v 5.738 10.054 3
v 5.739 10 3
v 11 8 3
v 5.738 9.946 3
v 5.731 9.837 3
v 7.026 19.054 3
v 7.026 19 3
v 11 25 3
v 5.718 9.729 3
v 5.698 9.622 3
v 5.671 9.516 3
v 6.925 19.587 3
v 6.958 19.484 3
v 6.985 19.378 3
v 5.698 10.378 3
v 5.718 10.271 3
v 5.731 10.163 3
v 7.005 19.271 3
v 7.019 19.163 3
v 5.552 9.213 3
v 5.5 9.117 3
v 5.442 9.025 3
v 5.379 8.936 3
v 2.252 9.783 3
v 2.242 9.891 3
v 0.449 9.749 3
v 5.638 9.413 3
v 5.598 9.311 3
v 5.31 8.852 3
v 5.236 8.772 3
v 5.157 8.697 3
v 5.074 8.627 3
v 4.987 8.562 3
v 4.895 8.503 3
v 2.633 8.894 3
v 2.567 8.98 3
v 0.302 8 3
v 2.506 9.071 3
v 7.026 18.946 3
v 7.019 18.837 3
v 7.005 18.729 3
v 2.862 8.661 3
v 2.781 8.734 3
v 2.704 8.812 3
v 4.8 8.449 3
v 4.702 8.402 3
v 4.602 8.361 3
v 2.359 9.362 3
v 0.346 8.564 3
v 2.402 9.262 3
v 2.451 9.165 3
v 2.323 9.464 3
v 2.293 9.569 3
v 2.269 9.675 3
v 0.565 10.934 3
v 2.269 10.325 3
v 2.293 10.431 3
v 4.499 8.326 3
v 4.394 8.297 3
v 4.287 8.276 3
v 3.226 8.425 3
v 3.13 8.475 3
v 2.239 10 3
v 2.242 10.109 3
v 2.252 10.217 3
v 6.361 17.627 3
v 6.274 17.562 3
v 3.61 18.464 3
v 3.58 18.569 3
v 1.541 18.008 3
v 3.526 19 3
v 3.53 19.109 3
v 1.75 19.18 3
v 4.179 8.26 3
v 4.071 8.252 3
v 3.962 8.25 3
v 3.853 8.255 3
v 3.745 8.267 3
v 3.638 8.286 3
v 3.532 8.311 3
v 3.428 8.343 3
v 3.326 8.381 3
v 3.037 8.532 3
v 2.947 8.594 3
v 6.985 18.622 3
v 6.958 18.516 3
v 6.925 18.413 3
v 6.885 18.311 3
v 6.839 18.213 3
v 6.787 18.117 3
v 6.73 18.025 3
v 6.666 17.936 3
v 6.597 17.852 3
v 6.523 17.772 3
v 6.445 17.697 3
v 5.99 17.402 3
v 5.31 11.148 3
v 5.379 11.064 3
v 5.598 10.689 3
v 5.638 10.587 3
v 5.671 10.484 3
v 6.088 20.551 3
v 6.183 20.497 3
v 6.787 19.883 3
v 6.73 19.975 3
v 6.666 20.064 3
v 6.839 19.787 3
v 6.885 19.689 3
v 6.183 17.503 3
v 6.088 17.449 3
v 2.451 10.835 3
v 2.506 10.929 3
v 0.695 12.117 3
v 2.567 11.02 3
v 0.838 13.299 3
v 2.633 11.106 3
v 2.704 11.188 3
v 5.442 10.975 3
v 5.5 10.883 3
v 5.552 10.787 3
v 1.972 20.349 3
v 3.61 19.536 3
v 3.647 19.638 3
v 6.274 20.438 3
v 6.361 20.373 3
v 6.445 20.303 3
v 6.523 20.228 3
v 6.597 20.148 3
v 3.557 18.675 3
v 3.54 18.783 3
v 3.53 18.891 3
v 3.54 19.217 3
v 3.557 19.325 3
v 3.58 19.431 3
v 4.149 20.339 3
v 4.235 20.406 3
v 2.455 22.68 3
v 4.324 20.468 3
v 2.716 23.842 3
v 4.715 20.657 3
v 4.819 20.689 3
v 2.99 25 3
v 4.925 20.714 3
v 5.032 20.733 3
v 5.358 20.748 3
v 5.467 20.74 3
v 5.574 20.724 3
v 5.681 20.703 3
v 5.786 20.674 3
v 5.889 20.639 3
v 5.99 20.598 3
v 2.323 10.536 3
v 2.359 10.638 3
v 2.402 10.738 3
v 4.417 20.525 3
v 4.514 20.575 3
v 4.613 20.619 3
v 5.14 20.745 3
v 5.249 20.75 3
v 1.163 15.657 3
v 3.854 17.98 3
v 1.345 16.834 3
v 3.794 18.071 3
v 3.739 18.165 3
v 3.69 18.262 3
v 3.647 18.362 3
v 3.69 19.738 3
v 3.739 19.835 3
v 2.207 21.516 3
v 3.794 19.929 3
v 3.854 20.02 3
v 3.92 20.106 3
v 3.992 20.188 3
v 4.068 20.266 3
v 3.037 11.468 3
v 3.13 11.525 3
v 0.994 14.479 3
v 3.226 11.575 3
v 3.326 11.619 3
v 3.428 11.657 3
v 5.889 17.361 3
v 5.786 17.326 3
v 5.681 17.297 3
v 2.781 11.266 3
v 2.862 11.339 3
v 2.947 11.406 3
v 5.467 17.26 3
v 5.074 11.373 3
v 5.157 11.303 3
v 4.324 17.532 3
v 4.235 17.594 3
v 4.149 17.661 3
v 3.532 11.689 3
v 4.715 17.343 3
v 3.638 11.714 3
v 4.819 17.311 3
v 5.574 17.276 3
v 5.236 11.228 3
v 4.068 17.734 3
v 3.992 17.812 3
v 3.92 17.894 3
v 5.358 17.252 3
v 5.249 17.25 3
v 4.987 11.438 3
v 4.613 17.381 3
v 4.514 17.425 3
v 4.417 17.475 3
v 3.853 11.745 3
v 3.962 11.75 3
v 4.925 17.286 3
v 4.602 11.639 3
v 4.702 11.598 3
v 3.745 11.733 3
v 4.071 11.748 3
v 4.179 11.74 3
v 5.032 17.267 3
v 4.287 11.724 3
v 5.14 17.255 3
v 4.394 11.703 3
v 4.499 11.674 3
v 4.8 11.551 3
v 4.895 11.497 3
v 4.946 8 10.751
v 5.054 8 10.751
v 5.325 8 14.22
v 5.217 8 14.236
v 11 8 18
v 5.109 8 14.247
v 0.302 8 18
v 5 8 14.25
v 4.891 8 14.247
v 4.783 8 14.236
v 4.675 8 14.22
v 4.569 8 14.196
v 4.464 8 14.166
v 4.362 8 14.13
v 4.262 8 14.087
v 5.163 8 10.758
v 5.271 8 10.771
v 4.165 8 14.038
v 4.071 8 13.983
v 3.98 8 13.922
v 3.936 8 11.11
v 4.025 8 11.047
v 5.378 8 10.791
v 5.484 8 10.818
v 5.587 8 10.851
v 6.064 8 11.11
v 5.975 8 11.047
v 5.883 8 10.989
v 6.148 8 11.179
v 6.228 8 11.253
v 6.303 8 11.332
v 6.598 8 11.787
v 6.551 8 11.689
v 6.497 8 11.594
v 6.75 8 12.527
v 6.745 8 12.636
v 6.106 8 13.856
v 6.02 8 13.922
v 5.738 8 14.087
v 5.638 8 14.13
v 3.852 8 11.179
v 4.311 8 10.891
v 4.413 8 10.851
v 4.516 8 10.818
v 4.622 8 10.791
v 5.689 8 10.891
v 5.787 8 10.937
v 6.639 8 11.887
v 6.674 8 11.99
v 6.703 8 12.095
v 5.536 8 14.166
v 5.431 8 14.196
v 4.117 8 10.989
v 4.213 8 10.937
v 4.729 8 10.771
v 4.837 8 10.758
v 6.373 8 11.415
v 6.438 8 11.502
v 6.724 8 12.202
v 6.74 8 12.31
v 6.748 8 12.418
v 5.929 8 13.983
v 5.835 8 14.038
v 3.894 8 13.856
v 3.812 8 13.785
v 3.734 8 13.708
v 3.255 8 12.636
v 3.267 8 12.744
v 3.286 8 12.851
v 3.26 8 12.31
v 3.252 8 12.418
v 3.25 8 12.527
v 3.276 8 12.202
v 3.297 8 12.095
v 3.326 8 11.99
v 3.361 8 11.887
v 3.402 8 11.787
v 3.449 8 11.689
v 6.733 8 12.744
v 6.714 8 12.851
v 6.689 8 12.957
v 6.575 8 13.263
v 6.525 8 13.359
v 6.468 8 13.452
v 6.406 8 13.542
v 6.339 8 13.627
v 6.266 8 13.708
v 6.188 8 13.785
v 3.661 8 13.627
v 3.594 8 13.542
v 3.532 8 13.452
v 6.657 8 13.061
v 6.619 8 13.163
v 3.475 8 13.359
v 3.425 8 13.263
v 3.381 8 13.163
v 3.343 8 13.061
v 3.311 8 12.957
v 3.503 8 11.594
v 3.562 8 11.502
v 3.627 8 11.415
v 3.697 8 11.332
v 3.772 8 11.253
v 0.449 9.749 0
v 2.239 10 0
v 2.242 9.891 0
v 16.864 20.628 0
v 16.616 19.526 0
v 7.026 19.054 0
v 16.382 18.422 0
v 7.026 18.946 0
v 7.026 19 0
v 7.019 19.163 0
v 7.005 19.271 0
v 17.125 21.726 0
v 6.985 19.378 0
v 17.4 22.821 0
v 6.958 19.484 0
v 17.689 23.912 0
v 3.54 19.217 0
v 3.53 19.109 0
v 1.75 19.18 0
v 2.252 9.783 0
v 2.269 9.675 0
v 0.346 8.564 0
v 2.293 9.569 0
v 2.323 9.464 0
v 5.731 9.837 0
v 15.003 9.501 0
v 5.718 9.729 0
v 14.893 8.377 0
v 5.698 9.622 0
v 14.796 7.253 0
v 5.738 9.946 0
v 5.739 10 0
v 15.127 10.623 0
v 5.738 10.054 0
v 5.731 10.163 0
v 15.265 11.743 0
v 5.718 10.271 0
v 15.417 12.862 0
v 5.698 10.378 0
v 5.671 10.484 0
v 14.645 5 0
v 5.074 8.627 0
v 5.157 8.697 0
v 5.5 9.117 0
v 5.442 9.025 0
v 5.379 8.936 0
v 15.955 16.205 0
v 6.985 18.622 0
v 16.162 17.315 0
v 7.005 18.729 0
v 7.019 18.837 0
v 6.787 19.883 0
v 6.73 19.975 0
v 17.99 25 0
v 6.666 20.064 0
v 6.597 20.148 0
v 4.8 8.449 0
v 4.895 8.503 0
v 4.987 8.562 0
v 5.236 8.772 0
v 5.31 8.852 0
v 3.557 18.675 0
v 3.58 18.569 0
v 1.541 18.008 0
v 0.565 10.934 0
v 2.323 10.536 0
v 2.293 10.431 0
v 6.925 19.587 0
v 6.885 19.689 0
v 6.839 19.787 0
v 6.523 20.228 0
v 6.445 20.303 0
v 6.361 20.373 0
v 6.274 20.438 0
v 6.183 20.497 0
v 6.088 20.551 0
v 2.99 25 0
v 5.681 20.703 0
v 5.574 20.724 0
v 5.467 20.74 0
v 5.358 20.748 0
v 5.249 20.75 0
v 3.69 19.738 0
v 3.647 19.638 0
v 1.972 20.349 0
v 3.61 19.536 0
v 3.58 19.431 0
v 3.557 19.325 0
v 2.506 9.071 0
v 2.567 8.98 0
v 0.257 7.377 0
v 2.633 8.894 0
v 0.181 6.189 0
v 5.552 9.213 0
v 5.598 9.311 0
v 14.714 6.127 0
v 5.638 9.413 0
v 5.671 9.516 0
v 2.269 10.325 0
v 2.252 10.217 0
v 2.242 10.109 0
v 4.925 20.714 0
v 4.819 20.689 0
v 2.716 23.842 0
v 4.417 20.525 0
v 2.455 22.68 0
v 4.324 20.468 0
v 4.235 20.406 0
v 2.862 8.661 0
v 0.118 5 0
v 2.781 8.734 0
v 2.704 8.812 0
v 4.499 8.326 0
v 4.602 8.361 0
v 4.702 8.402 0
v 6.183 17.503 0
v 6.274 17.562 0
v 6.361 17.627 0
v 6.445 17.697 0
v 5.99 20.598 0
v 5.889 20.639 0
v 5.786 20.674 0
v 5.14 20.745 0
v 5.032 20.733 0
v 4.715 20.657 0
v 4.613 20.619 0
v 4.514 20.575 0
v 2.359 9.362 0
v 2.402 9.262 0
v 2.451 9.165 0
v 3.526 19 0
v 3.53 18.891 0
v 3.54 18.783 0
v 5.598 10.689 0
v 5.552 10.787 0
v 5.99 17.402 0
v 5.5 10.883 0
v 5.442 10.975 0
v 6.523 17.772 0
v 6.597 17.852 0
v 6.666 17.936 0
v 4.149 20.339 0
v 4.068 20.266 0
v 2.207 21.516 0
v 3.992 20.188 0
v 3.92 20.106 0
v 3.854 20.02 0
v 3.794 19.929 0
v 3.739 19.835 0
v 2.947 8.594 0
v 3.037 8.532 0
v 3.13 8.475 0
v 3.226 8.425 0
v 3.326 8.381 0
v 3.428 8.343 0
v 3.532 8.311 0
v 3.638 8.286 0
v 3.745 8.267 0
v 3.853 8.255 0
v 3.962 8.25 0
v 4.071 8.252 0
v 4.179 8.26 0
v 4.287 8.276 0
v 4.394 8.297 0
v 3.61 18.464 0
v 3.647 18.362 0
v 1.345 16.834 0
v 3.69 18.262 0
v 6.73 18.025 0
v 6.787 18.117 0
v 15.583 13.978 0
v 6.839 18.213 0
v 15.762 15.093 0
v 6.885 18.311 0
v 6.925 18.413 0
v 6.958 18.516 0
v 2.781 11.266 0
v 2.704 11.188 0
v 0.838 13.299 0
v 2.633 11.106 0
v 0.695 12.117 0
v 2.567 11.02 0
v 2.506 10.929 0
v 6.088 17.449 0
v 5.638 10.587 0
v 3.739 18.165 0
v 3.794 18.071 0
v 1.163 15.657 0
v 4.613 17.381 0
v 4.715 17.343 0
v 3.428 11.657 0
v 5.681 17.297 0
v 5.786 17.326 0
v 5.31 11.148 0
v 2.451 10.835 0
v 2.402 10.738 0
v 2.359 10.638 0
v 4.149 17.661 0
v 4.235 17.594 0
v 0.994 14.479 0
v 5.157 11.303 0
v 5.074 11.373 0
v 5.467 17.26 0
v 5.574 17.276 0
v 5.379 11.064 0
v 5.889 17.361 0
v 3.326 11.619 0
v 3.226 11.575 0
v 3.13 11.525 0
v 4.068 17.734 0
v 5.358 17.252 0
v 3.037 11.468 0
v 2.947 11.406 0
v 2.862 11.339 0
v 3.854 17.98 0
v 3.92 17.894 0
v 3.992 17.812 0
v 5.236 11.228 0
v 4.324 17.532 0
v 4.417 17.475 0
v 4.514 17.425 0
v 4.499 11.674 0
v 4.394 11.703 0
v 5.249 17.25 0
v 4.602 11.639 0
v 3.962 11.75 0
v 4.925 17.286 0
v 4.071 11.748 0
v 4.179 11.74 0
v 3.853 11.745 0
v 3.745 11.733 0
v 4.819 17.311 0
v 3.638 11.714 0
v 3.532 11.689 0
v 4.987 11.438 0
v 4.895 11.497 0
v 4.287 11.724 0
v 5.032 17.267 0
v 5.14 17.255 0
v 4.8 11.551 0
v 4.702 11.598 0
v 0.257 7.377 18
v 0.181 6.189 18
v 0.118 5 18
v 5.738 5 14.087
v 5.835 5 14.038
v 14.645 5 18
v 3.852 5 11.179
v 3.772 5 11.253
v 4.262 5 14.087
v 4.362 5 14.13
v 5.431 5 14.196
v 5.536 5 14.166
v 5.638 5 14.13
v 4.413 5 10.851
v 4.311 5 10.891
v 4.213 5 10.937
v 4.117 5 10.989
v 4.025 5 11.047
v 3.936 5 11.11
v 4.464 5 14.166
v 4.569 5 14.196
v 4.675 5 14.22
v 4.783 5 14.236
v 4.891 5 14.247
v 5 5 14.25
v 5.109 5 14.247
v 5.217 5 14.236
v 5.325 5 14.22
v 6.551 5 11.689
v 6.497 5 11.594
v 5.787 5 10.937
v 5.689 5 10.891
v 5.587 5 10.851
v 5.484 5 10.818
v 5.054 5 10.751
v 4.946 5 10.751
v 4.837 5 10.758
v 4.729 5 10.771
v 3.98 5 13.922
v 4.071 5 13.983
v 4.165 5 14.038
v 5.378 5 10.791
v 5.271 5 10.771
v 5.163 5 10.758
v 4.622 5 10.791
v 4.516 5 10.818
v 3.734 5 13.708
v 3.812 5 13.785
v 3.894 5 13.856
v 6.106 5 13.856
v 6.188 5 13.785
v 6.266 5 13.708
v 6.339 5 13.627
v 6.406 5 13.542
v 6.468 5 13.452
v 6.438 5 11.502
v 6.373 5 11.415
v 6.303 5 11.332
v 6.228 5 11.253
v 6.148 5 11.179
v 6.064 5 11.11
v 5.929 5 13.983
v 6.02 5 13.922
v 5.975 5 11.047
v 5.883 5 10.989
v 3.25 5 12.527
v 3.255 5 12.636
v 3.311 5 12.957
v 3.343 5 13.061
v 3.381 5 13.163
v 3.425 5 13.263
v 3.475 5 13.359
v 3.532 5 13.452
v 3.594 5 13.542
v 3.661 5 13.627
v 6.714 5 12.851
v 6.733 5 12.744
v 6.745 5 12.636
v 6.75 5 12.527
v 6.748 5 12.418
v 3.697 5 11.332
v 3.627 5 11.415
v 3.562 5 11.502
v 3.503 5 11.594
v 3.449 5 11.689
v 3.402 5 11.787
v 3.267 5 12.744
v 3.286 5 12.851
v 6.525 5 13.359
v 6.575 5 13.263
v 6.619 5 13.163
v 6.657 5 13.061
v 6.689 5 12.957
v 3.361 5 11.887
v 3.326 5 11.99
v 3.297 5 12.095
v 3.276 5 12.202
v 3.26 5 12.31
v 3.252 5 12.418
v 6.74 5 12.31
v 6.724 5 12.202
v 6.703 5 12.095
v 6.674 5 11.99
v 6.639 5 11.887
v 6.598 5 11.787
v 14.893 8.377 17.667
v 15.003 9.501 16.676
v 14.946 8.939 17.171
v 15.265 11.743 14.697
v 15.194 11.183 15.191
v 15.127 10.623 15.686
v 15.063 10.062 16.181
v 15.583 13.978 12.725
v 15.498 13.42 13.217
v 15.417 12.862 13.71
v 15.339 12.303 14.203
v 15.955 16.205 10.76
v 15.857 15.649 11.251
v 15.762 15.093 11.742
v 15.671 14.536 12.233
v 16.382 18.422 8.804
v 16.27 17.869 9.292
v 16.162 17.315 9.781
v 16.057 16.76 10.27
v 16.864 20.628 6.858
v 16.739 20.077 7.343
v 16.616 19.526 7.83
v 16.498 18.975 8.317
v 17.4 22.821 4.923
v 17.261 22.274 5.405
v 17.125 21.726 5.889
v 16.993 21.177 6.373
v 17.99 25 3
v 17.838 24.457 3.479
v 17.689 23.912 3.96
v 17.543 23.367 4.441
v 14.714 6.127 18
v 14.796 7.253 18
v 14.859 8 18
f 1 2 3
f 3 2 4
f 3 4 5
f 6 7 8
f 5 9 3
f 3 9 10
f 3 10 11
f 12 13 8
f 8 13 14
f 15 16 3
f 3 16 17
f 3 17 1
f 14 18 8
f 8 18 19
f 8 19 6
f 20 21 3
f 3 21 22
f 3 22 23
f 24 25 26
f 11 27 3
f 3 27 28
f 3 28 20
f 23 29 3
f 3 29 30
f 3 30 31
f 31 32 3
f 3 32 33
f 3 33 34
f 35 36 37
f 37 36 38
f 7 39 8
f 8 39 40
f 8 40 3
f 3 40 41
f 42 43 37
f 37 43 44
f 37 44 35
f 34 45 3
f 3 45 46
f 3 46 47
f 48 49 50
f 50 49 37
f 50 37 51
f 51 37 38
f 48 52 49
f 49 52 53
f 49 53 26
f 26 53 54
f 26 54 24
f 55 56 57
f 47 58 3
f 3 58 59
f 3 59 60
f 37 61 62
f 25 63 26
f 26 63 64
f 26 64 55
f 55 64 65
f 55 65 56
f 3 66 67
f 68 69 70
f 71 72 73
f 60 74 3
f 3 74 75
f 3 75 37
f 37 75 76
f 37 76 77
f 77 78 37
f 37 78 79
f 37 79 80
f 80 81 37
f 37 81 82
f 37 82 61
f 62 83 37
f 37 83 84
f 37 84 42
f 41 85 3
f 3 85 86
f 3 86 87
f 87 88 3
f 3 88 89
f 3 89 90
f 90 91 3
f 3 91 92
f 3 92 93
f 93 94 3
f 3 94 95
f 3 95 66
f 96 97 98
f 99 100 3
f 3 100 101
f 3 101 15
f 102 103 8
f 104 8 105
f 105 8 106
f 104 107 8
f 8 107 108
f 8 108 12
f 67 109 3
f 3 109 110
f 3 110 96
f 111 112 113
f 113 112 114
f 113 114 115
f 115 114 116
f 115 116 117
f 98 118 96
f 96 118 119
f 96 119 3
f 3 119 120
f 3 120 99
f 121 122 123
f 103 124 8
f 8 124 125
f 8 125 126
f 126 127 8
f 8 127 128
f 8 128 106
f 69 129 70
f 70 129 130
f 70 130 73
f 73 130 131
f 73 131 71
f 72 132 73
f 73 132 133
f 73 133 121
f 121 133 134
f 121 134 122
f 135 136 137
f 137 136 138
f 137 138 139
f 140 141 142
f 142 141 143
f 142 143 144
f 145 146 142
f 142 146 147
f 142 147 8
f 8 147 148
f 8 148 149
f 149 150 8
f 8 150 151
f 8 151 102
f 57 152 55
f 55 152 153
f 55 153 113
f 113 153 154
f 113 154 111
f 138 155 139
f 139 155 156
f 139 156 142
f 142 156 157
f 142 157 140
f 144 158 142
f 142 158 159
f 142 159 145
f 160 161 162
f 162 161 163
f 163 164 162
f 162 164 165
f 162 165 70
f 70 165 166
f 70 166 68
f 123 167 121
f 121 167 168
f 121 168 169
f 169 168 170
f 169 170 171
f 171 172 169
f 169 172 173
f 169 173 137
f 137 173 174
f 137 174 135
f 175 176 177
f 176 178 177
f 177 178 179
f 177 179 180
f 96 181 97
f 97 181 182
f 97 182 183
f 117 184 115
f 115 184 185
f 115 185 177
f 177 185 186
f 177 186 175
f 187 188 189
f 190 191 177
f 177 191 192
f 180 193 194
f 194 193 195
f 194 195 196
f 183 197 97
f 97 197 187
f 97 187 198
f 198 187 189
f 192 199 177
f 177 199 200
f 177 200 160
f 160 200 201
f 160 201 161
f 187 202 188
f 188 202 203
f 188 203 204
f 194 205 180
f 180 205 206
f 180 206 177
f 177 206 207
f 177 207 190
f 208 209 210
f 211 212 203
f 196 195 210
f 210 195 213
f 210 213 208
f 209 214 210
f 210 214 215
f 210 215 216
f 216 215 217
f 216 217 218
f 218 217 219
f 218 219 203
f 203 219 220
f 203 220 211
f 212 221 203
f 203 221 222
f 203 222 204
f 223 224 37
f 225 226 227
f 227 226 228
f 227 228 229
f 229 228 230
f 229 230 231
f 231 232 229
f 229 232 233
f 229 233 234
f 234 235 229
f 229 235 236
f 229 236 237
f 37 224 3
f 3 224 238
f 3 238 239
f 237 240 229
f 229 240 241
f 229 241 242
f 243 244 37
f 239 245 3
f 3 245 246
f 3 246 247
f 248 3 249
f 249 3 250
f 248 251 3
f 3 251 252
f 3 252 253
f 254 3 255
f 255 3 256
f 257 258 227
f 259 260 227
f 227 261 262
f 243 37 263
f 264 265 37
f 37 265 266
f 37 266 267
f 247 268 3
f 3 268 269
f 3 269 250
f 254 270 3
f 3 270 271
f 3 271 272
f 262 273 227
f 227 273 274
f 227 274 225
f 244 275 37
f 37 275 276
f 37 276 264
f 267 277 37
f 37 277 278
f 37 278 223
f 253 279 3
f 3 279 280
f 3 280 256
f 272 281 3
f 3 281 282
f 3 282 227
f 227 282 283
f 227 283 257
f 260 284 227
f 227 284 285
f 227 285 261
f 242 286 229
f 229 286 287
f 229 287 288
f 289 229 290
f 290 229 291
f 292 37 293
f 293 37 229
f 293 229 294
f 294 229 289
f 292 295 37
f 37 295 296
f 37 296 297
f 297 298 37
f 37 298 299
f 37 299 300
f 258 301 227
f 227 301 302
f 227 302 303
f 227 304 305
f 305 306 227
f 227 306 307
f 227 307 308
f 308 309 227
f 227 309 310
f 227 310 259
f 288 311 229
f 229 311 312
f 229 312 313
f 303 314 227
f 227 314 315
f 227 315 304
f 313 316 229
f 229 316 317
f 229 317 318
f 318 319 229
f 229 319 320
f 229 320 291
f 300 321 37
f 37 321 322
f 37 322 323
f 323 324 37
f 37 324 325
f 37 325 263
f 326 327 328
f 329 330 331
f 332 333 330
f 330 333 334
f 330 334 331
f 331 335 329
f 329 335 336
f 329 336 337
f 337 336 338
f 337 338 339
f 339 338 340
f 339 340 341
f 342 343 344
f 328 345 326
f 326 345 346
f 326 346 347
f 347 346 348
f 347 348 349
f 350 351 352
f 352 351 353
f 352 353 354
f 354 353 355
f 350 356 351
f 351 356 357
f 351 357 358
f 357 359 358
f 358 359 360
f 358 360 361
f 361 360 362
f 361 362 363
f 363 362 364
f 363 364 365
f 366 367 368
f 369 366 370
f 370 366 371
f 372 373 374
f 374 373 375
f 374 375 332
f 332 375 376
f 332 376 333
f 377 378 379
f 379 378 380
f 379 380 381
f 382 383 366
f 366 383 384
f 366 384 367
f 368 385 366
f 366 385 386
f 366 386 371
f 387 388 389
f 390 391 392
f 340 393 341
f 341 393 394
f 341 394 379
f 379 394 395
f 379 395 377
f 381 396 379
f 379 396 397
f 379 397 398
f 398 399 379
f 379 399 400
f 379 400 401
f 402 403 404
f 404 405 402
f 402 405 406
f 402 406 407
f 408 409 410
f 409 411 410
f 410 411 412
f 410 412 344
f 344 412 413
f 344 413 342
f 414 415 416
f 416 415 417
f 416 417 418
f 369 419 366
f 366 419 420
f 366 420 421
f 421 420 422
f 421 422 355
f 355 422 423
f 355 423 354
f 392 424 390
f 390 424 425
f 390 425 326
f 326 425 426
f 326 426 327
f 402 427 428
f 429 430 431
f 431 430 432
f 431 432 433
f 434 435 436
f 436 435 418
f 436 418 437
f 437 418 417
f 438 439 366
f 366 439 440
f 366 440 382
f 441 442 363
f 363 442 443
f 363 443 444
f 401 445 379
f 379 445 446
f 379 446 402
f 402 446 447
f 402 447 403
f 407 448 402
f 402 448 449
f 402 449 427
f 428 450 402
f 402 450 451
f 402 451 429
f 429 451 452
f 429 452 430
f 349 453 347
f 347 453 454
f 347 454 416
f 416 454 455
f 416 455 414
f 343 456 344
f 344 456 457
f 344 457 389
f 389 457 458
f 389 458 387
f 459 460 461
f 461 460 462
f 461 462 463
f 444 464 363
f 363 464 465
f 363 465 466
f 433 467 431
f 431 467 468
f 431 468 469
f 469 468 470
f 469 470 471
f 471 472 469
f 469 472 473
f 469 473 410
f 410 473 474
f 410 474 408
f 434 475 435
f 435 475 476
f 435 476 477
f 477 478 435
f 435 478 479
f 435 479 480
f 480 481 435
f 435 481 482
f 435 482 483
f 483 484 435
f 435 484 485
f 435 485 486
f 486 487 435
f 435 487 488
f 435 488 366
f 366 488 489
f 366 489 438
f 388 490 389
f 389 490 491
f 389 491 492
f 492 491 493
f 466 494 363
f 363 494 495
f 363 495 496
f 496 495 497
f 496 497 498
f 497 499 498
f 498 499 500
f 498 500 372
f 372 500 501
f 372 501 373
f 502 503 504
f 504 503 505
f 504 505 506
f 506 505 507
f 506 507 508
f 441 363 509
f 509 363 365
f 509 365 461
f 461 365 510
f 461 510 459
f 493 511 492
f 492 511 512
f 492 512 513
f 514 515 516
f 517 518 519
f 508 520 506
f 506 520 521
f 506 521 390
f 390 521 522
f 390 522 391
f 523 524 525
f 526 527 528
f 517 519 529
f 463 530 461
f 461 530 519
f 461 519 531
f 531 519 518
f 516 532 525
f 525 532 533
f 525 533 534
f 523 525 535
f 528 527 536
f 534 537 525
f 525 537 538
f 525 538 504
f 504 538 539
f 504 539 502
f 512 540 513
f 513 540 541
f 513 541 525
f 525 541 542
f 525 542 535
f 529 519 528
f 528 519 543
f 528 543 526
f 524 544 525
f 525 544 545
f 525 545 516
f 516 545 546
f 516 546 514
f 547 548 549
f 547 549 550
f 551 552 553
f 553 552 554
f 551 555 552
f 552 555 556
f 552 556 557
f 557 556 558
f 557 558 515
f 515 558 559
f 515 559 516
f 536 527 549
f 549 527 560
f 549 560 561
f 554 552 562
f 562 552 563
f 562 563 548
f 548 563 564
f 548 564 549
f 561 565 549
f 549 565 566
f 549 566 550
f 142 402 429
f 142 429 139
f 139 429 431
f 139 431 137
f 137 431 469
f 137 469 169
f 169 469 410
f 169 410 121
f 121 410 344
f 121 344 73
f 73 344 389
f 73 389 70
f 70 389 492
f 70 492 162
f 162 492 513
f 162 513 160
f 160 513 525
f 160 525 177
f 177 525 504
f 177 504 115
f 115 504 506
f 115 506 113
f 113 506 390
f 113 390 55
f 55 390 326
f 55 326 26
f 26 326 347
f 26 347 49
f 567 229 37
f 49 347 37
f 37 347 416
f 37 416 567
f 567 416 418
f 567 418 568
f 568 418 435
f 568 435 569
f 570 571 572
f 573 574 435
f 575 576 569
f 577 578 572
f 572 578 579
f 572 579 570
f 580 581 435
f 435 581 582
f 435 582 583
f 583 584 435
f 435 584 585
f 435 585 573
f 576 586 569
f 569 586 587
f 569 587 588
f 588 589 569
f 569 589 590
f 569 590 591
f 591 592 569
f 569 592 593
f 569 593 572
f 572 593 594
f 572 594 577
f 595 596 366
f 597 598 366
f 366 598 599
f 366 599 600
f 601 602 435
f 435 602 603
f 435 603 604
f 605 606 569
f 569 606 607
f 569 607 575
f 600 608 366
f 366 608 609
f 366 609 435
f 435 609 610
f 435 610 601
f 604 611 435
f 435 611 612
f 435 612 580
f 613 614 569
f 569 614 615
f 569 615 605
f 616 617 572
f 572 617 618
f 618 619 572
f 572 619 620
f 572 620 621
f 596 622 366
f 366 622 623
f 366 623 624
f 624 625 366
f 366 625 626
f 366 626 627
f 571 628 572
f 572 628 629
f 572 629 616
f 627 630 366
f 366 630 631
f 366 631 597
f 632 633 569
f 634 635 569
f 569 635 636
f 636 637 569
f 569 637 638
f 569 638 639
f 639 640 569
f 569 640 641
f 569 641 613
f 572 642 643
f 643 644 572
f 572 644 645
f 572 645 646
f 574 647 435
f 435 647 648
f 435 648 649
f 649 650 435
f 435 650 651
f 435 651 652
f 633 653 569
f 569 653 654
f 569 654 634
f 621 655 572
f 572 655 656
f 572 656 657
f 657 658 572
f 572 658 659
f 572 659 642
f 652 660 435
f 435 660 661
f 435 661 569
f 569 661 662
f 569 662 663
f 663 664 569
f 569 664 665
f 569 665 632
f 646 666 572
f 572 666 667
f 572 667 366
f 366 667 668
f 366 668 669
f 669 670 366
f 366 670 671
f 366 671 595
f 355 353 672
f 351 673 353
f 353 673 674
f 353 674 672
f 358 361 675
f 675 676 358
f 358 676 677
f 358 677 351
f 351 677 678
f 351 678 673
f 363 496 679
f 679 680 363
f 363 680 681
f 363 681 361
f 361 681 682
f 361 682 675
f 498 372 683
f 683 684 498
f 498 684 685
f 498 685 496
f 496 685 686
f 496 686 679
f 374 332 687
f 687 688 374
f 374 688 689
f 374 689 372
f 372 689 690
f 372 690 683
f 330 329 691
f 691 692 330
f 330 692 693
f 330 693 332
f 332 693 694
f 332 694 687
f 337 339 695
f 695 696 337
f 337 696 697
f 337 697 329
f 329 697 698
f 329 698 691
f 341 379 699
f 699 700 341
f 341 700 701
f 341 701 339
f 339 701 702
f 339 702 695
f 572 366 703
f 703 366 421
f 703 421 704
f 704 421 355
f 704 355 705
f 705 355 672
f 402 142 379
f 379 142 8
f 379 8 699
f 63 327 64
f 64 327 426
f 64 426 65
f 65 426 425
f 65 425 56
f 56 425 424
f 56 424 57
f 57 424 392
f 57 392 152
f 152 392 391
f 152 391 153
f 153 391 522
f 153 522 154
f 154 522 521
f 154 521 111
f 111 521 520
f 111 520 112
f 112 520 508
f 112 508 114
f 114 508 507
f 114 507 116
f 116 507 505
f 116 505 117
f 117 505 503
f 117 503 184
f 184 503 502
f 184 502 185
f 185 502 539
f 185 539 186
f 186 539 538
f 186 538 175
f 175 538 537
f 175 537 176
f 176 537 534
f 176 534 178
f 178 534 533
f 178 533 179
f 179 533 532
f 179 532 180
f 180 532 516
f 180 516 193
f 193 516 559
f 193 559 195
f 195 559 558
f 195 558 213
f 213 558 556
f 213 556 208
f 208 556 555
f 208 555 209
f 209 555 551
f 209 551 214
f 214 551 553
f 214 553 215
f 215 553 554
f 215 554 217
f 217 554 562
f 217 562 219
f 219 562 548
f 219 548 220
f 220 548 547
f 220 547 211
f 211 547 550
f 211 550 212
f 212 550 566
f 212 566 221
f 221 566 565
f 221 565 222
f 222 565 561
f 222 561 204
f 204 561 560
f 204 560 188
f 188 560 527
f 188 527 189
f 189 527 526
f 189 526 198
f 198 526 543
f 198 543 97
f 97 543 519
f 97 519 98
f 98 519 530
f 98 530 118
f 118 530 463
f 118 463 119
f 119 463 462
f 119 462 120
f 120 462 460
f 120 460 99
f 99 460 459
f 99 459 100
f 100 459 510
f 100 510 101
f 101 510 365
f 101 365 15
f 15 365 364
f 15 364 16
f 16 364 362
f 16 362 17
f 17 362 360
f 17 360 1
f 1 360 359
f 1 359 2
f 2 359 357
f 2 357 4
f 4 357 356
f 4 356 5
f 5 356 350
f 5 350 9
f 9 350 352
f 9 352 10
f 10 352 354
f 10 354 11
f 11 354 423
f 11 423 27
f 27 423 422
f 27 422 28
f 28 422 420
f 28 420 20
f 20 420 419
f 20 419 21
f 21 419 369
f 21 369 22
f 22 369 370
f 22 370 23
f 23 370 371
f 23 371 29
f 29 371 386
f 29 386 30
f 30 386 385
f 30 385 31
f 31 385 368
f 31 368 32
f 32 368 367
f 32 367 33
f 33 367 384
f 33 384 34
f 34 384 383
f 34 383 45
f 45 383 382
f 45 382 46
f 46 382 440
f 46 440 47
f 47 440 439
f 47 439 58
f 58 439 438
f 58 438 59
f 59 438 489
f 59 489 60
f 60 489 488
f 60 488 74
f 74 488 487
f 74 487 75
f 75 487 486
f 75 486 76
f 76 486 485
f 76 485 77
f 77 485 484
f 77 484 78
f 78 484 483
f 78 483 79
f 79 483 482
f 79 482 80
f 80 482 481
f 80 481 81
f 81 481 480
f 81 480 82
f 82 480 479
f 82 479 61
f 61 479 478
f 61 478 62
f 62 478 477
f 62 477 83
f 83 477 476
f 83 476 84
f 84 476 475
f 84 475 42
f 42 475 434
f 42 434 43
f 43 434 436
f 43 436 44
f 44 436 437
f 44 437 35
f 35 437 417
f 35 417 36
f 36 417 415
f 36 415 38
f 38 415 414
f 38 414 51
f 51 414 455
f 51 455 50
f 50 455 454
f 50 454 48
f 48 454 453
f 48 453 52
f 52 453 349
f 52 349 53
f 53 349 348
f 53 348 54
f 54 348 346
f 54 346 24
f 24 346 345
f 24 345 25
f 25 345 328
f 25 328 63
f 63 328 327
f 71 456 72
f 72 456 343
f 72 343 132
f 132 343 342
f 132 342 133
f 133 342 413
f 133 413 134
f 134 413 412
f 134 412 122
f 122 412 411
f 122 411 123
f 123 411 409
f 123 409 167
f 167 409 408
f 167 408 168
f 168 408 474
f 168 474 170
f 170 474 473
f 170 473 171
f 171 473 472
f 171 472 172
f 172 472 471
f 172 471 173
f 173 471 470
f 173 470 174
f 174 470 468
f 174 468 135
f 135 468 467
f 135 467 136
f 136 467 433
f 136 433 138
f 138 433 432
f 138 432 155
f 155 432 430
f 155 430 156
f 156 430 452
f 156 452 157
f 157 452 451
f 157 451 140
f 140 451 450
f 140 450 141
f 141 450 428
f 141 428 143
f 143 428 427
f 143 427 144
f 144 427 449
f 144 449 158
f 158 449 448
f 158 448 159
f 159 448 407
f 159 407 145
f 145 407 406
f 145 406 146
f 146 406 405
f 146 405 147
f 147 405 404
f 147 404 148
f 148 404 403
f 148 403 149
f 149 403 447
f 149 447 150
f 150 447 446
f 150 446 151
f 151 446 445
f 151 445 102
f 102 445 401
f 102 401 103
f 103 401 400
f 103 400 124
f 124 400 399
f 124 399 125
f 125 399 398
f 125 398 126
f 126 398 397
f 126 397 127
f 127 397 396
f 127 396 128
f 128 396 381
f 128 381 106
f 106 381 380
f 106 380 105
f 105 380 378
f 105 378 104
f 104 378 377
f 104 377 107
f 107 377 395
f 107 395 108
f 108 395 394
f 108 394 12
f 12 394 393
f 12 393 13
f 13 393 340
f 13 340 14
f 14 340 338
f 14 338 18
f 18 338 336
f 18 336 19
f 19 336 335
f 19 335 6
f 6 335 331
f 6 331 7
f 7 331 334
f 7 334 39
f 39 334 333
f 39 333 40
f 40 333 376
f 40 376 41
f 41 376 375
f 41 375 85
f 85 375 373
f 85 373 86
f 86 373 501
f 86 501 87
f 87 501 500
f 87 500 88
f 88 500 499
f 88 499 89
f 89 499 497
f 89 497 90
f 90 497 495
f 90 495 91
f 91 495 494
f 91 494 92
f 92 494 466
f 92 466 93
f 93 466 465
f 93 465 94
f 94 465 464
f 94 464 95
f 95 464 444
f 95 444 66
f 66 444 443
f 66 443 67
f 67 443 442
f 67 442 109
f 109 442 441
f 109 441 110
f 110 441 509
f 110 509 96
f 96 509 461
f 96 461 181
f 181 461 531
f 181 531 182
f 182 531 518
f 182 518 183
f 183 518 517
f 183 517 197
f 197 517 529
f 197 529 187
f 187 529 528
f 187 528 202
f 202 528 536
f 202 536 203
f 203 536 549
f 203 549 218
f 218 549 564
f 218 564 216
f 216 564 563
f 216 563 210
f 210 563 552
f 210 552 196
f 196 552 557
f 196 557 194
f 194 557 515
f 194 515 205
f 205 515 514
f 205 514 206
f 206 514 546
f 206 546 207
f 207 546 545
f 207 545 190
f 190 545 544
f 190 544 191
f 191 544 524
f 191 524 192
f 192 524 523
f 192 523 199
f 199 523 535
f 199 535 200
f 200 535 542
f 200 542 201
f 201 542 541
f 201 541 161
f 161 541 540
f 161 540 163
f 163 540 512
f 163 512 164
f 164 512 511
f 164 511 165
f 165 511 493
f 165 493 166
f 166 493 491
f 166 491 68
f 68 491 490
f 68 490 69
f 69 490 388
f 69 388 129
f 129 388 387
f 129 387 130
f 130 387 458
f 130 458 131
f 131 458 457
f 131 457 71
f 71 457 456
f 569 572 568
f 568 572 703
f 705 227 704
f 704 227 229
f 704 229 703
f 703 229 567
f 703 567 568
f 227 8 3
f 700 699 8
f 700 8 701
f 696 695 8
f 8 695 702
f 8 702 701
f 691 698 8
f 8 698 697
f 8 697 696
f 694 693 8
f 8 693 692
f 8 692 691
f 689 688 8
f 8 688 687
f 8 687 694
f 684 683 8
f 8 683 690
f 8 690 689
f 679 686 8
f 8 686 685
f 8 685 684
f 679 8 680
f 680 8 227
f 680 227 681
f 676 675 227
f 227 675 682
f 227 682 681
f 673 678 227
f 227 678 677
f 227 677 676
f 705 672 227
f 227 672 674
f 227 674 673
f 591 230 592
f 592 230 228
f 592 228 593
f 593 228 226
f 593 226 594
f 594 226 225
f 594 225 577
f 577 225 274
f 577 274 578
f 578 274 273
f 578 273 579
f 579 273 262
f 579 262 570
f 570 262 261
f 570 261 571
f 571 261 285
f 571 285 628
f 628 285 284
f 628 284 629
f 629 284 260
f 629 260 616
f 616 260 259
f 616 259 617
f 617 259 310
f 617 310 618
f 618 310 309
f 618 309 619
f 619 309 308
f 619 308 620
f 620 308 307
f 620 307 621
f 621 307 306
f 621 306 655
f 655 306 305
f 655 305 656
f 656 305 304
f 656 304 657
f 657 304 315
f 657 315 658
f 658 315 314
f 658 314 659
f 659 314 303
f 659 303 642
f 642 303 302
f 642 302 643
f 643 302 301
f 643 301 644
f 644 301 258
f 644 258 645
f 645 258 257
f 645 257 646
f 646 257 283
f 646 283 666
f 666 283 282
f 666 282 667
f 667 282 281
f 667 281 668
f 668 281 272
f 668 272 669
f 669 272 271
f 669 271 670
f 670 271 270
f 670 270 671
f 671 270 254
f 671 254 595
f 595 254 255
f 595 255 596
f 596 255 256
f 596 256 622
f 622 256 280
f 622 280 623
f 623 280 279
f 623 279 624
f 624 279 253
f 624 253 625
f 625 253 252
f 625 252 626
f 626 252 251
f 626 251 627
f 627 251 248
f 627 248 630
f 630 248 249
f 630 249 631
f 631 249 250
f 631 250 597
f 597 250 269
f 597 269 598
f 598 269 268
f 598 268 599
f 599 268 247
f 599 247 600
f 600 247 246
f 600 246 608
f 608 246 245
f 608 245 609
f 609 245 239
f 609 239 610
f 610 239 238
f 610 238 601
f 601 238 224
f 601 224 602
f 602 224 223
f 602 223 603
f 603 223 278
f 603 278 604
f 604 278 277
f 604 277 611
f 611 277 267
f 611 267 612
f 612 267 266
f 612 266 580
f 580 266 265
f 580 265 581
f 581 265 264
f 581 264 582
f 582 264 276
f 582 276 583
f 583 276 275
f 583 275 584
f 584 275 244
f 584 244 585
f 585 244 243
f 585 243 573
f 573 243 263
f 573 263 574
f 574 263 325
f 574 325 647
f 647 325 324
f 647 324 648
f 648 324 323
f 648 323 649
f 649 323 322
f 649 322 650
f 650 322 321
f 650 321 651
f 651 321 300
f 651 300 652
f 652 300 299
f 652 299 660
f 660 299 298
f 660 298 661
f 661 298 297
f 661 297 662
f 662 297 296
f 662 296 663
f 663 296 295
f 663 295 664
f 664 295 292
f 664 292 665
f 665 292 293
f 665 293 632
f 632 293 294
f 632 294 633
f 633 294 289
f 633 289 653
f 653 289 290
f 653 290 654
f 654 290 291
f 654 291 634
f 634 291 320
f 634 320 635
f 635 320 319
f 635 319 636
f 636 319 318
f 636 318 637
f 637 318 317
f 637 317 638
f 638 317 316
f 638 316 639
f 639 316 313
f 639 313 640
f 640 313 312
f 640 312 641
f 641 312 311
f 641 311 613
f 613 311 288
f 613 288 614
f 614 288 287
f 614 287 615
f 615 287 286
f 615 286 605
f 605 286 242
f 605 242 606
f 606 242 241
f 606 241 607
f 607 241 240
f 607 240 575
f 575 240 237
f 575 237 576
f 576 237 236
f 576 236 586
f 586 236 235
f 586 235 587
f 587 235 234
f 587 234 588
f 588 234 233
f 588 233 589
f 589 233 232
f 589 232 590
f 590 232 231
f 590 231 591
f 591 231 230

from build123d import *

# Parameters (mm, degrees)
SKETCH1_R                = 1.75
BOSS_EXTRUDE1_DEPTH      = 3
BOSS_EXTRUDE2_DEPTH      = 15
BOSS_EXTRUDE3_REACH      = 34.671
BOSS_EXTRUDE3_END_RADIUS = 91.49157749
SKETCH4_R                = 1.75
CUT_EXTRUDE1_DEPTH       = 31.604747935


with BuildPart() as part:
    # Sketch1 → Boss-Extrude1 (new body)
    with BuildSketch(Plane.XY):
        with BuildLine():
            Line((0.117990197, 5), (14.645149272, 5))
            ThreePointArc((14.645149272, 5), (15.76191903, 15.092961754), (17.99029172, 25))
            Line((17.99029172, 25), (2.99029172, 25))
            ThreePointArc((2.99029172, 25), (1.076516113, 15.068594129), (0.117990197, 5))
        make_face()
        with Locations((3.988971184, 10)):
            Circle(SKETCH1_R, mode=Mode.SUBTRACT)
        with Locations((5.276368215, 19)):
            Circle(SKETCH1_R, mode=Mode.SUBTRACT)
    extrude(amount=BOSS_EXTRUDE1_DEPTH)

    # Sketch2 → Boss-Extrude2 (add)
    with BuildSketch(Plane.XY.offset(3)):
        with BuildLine():
            Line((0.117990197, 5), (14.645149272, 5))
            ThreePointArc((14.645149272, 5), (14.739672725, 6.500878193), (14.858852588, 8))
            Line((14.858852588, 8), (0.302317906, 8))
            ThreePointArc((0.302317906, 8), (0.199520295, 6.500653365), (0.117990197, 5))
        make_face()
    extrude(amount=BOSS_EXTRUDE2_DEPTH)

    # Boss-Extrude3: up to this cylinder (the profile starts outside it)
    boss_extrude3_end = Plane(origin=(106, 0, 8), z_dir=(0, 0, -1)) * Cylinder(BOSS_EXTRUDE3_END_RADIUS, 253.32515498, mode=Mode.PRIVATE)
    # Sketch3 → Boss-Extrude3 (add, up to the surface)
    with BuildSketch(Plane(origin=(11, 0, 0), x_dir=(0, 0, -1), z_dir=(1, 0, 0)), mode=Mode.PRIVATE) as boss_extrude3_sk1:
        Polygon((-18, 8), (-3, 25), (-3, 8), align=None)
    boss_extrude3_tool1 = extrude(boss_extrude3_sk1.sketch, amount=BOSS_EXTRUDE3_REACH, mode=Mode.PRIVATE) - boss_extrude3_end
    add(boss_extrude3_tool1.solids().sort_by_distance((11, 13.666667, 8))[0])

    # Sketch4 → Cut-Extrude1 (cut, through all)
    with BuildSketch(Plane(origin=(0, 8, 0), x_dir=(1, 0, 0), z_dir=(0, 1, 0))):
        with Locations(Location((5, -12.5, 0), (0, 0, 270))):
            Circle(SKETCH4_R)
    extrude(amount=-CUT_EXTRUDE1_DEPTH, mode=Mode.SUBTRACT)


solid = part.part
